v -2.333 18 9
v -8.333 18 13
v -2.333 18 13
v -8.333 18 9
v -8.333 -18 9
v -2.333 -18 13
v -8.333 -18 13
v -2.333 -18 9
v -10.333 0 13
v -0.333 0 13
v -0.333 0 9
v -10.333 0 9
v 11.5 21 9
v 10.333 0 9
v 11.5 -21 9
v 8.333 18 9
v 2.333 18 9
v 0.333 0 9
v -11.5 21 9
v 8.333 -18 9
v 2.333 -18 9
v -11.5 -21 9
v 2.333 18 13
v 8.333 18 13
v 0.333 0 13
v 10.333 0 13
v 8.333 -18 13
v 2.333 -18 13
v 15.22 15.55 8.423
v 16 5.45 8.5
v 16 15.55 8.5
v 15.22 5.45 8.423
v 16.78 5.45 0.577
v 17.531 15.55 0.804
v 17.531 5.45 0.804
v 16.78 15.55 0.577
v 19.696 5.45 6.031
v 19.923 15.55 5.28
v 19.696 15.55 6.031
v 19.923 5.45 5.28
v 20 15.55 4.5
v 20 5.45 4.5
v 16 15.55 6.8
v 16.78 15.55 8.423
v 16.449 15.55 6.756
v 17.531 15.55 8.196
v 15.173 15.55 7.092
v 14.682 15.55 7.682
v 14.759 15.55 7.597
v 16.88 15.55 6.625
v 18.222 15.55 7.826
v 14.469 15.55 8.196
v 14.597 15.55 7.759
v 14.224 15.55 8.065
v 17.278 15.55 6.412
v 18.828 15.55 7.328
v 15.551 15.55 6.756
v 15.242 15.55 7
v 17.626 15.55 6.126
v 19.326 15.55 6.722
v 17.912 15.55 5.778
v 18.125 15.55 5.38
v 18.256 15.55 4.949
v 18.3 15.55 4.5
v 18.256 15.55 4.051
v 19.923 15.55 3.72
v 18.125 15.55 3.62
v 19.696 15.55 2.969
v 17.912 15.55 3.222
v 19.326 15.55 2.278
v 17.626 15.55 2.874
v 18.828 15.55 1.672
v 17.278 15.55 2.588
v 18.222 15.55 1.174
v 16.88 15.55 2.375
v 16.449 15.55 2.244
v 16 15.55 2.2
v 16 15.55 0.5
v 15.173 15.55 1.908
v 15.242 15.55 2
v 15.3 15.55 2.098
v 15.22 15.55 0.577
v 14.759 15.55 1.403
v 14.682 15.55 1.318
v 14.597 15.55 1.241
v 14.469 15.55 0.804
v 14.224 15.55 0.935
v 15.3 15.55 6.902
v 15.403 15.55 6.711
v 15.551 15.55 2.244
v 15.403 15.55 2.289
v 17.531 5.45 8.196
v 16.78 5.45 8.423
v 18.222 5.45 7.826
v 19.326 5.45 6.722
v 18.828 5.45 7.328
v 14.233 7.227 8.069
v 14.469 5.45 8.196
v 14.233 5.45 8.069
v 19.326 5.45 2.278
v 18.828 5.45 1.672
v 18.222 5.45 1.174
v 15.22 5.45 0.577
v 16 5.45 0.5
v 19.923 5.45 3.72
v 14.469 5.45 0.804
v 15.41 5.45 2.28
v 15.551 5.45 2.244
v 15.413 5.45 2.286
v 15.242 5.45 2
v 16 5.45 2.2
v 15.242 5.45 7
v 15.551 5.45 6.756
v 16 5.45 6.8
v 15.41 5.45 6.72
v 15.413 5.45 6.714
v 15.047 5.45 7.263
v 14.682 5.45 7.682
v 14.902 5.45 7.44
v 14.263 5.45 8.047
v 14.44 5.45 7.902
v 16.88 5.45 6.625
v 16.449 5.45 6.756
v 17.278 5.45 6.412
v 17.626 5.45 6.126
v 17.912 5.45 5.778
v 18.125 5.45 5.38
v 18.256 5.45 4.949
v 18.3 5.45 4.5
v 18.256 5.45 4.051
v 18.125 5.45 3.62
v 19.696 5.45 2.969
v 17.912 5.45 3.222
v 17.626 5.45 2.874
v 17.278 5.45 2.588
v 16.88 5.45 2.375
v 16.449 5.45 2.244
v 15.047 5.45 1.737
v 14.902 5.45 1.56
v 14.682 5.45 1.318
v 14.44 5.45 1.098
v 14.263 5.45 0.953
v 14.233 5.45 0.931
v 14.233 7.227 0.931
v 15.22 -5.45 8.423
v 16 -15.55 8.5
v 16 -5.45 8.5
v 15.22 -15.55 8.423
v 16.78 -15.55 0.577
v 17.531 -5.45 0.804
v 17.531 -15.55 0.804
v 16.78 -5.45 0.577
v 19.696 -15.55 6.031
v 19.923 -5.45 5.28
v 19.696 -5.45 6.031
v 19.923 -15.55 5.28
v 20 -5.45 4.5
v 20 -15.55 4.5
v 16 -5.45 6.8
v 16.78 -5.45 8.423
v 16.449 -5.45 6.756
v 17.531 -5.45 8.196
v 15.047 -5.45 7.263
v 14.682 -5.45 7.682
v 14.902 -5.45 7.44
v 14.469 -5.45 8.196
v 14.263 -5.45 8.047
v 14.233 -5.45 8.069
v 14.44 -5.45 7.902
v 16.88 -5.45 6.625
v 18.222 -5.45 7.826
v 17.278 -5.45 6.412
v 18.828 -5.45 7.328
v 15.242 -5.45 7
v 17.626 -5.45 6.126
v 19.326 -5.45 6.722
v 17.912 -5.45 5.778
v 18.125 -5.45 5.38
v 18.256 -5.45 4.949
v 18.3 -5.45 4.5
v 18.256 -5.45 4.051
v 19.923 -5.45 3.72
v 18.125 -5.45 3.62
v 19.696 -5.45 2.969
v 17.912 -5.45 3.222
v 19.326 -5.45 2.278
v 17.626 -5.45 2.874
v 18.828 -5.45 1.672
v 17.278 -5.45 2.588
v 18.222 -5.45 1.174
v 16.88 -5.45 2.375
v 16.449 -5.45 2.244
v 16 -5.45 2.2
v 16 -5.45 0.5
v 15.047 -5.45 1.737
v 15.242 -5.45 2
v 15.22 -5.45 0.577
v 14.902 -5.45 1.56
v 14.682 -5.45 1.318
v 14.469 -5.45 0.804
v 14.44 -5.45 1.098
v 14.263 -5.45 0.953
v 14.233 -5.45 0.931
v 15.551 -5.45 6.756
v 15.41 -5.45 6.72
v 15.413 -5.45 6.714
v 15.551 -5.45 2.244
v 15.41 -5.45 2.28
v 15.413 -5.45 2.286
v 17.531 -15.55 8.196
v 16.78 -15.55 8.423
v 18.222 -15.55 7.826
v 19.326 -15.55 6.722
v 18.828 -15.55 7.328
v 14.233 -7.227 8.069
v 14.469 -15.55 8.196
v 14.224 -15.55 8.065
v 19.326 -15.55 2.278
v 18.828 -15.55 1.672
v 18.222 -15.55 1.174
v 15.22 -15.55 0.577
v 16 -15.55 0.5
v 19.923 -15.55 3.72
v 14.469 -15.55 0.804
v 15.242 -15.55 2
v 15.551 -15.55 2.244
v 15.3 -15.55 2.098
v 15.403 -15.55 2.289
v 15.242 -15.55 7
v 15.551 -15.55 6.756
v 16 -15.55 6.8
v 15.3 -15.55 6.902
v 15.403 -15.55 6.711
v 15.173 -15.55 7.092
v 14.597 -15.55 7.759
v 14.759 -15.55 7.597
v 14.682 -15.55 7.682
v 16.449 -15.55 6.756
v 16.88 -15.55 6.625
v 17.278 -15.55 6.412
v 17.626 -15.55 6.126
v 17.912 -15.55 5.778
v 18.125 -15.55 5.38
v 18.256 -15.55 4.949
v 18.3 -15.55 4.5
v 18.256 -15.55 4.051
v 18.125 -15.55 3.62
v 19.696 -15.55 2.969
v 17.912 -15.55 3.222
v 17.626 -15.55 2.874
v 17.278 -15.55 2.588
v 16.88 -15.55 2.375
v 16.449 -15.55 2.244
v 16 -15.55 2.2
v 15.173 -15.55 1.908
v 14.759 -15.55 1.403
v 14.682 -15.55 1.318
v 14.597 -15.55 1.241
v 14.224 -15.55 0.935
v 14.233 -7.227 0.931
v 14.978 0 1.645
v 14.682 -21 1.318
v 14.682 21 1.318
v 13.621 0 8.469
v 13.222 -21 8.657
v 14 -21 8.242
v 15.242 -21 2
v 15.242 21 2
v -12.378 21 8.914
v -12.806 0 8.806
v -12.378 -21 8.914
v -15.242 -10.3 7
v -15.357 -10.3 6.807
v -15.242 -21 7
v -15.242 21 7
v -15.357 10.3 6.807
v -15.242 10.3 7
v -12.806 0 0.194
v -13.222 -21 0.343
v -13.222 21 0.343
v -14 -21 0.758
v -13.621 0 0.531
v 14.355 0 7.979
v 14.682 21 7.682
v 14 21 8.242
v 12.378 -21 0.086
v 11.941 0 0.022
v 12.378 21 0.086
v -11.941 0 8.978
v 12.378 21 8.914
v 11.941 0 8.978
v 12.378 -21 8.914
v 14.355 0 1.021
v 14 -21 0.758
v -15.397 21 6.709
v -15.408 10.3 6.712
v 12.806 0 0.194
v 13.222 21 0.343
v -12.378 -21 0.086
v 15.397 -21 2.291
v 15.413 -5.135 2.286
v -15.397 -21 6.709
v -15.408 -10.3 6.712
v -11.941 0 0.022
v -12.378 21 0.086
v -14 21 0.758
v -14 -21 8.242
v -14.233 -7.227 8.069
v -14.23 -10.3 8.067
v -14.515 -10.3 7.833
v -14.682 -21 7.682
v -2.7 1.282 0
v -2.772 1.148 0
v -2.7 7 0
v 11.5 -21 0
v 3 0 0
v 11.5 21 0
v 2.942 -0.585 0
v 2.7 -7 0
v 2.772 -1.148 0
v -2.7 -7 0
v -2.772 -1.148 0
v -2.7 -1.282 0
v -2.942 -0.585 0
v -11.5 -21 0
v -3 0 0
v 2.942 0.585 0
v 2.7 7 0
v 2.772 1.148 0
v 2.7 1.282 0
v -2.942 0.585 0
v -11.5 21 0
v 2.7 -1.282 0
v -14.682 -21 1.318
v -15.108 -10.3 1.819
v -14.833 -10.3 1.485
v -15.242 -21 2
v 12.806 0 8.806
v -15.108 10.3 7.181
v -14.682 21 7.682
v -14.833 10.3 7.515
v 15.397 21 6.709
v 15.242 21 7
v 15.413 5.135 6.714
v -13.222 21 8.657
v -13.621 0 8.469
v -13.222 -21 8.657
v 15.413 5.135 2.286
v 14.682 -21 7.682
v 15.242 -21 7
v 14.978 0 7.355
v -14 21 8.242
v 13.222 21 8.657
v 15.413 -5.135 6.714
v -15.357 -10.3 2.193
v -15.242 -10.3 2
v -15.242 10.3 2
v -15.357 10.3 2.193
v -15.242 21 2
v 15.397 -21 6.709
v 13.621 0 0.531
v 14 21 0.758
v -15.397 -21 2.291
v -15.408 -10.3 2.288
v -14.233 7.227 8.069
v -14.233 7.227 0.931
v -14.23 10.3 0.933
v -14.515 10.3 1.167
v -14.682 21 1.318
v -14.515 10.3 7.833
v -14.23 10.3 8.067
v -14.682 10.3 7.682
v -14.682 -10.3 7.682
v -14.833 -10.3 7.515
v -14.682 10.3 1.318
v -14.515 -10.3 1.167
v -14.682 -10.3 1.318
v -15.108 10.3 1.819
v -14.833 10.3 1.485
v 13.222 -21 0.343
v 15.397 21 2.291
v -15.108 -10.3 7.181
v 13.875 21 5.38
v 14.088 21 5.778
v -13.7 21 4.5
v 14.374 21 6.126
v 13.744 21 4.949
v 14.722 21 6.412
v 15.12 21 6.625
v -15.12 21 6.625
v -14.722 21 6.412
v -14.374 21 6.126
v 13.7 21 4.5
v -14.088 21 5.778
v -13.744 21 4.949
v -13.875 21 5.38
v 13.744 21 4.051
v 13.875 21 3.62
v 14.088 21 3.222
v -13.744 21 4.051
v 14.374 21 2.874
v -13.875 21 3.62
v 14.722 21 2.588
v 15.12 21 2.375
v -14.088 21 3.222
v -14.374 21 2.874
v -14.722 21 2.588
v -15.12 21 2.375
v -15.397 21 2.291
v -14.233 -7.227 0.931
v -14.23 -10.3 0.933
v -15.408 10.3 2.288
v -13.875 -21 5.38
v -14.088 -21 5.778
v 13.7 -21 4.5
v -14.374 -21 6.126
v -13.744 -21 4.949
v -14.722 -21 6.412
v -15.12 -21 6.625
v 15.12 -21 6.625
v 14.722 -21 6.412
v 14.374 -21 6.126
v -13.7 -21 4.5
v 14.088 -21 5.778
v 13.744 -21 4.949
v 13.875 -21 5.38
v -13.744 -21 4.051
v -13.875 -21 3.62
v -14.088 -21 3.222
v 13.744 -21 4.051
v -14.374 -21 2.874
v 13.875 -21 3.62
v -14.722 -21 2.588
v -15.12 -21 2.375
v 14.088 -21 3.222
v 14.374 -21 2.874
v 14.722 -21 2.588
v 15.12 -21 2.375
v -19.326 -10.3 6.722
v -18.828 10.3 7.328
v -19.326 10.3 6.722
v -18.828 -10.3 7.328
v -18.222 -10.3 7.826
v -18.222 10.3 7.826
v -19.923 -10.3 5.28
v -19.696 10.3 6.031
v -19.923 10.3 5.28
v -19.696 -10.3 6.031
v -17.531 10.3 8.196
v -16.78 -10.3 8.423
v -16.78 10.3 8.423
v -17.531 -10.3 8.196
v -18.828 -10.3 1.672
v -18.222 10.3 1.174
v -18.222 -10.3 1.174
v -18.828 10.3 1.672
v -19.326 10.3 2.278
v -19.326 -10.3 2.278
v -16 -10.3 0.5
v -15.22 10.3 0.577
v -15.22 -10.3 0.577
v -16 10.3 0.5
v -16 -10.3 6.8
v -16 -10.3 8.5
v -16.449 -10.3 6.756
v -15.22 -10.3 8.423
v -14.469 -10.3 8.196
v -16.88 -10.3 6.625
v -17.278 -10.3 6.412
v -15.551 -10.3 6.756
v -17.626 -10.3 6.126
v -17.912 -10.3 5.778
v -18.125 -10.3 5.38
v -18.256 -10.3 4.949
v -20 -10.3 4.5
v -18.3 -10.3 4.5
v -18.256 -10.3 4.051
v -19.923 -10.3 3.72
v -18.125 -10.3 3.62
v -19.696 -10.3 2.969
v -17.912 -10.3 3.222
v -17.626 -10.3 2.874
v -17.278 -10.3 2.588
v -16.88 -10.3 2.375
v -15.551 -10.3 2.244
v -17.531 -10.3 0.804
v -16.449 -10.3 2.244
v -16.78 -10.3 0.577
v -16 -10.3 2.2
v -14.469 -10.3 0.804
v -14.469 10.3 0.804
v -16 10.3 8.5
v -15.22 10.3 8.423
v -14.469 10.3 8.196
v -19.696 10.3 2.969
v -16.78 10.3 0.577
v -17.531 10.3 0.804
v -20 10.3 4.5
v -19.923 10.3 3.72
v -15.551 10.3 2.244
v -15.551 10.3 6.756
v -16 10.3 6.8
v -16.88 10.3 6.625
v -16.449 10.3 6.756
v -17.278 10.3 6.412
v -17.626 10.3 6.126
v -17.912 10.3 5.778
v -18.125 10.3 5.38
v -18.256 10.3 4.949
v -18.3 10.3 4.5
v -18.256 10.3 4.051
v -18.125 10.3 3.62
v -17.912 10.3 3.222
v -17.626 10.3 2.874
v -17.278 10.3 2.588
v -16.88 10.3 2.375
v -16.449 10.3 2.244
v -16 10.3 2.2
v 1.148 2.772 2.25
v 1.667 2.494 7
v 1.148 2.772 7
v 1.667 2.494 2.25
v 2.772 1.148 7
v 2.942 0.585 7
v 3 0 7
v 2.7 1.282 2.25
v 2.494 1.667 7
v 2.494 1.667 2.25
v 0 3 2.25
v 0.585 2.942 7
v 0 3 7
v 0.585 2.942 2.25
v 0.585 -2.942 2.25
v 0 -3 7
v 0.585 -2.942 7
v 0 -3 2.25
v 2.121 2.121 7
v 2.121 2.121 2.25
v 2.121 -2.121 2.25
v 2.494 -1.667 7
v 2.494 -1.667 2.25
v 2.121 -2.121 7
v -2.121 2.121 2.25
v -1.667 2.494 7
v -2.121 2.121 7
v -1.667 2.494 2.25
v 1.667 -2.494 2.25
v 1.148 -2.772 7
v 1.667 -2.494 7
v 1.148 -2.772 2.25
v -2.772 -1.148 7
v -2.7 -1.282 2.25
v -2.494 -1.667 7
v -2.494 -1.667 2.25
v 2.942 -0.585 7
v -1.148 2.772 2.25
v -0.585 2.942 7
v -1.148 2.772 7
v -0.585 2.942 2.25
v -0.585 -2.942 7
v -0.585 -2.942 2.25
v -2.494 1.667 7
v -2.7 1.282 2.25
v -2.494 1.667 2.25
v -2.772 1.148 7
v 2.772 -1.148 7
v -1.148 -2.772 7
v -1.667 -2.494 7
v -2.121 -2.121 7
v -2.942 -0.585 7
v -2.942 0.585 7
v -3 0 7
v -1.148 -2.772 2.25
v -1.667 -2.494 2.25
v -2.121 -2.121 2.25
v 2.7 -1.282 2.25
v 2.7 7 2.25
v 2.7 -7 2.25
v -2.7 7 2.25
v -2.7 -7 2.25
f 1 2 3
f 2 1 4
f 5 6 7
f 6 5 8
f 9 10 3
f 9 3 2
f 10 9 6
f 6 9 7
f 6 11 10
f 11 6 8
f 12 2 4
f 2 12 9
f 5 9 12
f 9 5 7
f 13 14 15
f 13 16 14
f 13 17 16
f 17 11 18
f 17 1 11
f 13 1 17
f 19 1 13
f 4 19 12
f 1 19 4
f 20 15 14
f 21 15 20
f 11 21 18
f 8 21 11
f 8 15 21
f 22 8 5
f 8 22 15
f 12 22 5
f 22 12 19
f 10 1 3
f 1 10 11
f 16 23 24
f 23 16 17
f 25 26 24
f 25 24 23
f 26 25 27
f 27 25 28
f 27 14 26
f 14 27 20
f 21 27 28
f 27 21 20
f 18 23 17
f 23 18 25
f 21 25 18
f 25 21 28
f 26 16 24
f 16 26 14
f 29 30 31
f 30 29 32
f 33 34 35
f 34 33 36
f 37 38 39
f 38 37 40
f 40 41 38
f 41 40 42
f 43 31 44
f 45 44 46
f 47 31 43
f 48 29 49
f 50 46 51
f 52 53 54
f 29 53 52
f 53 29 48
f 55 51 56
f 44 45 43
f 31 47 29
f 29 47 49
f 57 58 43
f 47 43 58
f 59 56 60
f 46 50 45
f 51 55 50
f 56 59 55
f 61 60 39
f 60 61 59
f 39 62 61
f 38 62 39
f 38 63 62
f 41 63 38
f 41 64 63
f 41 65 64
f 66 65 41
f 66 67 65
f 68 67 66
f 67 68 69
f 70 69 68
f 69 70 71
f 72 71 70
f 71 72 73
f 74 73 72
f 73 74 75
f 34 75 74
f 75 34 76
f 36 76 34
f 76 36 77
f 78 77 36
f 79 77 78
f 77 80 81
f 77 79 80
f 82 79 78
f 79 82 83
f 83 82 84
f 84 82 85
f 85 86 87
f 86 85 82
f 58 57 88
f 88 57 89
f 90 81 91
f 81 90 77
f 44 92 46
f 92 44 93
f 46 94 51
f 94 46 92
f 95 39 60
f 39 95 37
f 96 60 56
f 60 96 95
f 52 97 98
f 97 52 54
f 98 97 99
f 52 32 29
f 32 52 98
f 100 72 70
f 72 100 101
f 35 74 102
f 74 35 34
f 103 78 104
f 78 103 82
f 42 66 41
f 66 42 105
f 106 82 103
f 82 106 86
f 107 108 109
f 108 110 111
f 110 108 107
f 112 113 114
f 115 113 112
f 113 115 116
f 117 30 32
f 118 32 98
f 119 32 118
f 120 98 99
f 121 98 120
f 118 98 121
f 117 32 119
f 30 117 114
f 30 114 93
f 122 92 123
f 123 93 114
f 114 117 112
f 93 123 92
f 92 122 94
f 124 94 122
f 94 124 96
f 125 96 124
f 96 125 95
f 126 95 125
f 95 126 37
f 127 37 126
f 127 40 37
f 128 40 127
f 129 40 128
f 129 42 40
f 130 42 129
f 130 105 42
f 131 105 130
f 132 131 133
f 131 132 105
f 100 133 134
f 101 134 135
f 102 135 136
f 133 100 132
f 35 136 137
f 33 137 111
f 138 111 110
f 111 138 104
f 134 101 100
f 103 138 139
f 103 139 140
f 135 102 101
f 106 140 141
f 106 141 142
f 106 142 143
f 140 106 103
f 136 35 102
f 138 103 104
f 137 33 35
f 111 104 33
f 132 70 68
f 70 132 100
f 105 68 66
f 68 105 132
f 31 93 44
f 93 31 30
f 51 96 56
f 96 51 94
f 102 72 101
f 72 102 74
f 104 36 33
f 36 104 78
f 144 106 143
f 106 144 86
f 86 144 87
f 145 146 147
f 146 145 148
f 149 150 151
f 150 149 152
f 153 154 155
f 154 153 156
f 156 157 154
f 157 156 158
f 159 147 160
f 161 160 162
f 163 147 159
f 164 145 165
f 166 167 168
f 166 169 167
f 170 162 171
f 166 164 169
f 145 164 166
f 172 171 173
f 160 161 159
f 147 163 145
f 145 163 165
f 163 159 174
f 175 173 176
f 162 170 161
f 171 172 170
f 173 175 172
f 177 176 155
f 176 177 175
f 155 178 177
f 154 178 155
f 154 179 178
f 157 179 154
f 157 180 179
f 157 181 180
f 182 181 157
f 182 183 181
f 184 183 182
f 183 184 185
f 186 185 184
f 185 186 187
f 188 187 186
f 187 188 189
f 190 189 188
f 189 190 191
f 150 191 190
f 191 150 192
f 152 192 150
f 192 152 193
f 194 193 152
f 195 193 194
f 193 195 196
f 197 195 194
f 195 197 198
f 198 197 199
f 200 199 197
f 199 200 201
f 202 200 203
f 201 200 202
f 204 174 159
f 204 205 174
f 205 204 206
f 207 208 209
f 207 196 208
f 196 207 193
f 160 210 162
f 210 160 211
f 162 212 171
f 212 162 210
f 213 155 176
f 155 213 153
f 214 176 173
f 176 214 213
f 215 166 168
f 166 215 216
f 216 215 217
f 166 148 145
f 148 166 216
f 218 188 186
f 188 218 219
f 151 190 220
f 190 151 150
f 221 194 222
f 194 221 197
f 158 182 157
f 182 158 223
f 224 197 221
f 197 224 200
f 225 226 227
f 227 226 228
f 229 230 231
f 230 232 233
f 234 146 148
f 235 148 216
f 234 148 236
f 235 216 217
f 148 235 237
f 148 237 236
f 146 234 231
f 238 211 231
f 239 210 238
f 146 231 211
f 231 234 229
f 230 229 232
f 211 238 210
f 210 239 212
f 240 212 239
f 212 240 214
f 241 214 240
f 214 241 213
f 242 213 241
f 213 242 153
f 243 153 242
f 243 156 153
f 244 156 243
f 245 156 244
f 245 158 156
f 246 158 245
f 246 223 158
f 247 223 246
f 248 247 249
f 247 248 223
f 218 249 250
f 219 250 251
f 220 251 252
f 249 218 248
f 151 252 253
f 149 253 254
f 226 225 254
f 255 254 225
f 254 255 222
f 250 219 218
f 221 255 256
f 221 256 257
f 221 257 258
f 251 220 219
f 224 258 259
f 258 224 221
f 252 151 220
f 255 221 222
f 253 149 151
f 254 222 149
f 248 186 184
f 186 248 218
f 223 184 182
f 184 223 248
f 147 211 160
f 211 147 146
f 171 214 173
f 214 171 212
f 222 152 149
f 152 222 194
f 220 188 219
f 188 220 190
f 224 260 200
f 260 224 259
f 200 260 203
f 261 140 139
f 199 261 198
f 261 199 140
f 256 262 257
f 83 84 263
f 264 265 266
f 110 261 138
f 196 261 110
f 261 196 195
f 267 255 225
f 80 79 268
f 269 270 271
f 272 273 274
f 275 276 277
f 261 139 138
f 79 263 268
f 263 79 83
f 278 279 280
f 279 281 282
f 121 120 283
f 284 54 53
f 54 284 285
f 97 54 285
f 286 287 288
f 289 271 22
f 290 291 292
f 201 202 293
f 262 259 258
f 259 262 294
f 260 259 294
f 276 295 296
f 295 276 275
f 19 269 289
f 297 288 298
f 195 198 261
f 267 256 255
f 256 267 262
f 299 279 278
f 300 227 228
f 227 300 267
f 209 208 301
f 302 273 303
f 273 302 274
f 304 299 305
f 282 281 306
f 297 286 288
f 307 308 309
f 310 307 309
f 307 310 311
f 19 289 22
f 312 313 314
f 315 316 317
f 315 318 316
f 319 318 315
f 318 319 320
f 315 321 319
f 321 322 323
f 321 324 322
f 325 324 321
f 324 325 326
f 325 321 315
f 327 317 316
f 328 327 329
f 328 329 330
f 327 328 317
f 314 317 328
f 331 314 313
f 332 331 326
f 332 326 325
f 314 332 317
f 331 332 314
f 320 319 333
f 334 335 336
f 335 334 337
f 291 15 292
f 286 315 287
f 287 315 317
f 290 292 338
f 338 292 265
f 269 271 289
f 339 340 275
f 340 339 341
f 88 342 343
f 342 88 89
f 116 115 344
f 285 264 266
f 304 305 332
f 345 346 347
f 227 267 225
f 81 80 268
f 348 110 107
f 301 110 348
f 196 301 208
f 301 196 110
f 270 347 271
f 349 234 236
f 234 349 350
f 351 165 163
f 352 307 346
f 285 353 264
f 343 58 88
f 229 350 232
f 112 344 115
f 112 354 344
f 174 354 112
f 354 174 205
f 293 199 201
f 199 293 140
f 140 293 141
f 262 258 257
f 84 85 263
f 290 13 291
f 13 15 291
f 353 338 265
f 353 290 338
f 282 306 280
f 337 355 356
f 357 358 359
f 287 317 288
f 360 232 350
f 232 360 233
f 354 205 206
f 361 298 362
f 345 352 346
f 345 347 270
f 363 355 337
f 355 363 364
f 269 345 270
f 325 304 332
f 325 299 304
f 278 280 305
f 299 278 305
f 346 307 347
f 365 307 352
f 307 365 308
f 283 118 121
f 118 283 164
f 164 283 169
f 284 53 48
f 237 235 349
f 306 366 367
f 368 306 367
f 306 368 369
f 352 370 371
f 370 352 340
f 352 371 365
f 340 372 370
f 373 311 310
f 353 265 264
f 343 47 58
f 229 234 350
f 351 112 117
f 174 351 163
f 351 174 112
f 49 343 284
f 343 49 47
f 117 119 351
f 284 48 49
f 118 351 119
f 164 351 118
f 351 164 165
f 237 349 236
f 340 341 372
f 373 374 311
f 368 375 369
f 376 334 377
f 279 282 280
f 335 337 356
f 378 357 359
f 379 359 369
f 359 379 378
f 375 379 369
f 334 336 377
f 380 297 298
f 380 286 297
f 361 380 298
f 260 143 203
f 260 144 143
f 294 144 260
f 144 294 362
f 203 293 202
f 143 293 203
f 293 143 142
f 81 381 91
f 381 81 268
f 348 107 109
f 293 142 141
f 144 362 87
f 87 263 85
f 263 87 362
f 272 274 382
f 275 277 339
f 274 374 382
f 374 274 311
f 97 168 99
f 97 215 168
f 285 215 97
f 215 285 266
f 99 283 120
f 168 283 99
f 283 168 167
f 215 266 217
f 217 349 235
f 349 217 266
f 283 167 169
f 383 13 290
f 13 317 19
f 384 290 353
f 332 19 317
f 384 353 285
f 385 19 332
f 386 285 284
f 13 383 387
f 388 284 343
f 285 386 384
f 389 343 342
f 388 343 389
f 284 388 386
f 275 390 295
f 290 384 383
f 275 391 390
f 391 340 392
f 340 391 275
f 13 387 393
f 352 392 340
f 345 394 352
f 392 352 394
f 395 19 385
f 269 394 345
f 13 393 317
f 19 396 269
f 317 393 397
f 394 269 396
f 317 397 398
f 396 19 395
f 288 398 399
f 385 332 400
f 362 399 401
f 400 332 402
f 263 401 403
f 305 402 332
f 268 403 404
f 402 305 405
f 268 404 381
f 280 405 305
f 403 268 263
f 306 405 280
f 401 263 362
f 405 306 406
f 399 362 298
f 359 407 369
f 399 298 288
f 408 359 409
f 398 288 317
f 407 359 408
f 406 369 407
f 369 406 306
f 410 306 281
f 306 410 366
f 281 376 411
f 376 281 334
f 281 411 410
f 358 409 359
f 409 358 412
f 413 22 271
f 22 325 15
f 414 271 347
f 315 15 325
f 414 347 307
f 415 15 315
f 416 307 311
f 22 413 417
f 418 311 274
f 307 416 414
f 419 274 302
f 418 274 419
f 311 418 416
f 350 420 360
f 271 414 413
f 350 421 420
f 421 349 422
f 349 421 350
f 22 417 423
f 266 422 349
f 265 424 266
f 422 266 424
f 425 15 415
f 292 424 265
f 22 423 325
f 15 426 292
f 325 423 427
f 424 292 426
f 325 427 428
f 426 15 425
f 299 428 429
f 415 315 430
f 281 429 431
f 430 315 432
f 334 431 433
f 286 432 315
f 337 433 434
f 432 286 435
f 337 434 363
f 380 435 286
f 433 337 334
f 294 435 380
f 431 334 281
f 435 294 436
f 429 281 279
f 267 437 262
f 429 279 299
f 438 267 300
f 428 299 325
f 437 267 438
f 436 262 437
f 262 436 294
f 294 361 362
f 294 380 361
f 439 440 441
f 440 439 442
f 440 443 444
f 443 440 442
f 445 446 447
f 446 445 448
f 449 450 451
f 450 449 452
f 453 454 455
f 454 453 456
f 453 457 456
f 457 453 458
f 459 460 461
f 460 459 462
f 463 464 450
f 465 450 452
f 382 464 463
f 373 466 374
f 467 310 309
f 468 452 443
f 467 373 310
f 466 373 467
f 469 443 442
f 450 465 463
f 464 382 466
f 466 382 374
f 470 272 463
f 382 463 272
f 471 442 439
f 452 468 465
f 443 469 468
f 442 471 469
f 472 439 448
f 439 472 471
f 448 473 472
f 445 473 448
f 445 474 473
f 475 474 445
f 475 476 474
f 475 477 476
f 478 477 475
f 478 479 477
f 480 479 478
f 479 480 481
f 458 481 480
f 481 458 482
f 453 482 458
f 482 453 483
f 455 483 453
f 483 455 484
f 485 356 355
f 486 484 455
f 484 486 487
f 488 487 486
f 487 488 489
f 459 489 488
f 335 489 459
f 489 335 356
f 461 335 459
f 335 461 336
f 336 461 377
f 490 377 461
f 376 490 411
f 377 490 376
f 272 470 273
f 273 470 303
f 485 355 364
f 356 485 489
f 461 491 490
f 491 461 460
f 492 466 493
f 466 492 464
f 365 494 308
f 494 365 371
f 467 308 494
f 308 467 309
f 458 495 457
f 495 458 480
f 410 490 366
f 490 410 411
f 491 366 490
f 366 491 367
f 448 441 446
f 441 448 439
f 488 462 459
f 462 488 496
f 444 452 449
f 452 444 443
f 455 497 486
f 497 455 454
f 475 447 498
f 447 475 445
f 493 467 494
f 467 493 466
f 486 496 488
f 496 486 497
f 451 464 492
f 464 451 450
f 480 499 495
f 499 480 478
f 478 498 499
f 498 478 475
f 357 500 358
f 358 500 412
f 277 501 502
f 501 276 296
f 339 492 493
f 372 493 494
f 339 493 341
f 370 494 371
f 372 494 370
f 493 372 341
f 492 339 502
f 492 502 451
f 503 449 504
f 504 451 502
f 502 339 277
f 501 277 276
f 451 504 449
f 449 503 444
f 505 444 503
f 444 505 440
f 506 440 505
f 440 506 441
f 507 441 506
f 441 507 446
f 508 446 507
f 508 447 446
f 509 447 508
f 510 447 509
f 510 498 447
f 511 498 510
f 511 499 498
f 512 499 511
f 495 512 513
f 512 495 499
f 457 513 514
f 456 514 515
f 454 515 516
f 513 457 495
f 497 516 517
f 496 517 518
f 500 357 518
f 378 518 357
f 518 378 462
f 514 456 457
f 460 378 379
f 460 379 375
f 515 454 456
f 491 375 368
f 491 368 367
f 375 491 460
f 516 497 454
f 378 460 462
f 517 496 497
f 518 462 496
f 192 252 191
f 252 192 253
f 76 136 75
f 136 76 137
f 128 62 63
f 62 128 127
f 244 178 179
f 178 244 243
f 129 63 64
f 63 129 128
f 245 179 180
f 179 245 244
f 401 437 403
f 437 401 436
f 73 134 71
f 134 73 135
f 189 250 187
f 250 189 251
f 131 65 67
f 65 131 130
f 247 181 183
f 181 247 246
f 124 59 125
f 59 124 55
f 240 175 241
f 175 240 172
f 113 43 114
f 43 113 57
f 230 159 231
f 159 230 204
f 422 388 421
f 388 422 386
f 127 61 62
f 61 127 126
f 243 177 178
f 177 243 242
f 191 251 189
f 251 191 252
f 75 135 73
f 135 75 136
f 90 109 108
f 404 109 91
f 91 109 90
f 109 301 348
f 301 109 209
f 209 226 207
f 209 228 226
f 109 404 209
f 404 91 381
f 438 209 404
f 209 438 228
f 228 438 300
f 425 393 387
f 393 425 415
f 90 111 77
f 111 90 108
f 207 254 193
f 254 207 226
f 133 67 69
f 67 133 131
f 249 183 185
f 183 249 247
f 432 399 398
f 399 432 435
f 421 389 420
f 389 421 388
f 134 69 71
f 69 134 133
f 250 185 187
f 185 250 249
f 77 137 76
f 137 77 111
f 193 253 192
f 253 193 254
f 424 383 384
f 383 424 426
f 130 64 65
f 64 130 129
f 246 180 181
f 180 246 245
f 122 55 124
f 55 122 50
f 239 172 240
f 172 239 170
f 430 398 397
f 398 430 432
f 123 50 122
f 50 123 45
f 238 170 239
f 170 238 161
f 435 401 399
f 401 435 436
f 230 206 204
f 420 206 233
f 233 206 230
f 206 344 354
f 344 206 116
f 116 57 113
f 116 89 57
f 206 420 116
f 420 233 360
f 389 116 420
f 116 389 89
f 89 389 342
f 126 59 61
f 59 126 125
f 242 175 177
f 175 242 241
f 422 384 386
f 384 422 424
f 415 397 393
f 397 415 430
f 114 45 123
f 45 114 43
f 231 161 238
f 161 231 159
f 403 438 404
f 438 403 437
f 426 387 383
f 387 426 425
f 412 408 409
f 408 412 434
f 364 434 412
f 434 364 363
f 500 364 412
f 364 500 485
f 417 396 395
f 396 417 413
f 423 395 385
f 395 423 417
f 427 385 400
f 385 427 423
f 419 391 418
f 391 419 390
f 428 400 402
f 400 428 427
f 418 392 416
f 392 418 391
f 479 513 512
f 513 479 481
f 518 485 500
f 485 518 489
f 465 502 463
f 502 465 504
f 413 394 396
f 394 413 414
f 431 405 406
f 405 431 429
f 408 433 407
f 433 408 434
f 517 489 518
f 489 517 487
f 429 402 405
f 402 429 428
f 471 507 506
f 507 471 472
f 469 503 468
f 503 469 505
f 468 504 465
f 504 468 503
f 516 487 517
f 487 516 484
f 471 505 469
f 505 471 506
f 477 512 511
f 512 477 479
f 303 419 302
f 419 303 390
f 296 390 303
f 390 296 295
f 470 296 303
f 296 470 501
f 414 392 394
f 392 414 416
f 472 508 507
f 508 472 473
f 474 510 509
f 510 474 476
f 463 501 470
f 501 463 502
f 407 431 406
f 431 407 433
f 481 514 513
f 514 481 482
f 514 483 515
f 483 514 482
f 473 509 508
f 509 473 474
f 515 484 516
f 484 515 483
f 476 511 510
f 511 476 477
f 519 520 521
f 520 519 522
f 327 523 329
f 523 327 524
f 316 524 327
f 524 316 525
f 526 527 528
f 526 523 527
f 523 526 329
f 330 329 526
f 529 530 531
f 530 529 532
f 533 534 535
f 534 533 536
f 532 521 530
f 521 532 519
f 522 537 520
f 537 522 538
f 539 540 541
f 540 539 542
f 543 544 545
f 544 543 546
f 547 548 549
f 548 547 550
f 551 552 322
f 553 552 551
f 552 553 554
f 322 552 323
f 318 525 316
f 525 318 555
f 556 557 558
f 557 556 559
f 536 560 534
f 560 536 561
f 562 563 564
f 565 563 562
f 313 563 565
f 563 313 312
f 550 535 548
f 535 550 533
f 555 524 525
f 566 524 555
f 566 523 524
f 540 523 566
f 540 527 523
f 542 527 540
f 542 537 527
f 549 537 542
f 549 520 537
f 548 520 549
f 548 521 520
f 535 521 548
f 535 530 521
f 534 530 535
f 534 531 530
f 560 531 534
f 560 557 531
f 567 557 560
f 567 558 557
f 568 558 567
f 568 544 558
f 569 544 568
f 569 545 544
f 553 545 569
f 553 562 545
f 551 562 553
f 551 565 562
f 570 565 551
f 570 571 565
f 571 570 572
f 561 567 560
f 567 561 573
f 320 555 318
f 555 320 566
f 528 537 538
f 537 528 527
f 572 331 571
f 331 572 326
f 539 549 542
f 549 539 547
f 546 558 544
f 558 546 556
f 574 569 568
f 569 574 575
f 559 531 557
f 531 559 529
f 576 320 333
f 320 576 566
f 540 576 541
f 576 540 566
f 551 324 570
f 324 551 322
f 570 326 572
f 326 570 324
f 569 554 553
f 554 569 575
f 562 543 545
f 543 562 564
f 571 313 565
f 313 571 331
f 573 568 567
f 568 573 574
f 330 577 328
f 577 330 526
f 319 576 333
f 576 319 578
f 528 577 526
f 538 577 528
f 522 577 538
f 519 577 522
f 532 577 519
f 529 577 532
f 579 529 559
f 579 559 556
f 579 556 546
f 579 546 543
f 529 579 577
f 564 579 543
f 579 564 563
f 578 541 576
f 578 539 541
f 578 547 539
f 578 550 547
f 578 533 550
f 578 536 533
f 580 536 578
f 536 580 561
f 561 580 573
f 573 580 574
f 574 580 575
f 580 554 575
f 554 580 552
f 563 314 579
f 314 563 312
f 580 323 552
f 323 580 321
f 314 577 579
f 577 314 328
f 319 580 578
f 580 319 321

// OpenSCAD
// file: params.scad
// ============================================================
//  PARAMÈTRES GLOBAUX - Johnny-Mow
//  Modifier ici pour adapter à votre robot
// ============================================================

// --- Châssis ---
chassis_L   = 350;   // longueur totale mm
chassis_W   = 300;   // largeur totale mm
chassis_H   = 8;     // épaisseur plaque de base mm
rail_W      = 52;    // largeur de chaque rail de chenille mm
rail_H      = 35;    // hauteur du rail latéral mm
rail_wall   = 4;     // épaisseur paroi rail mm
center_H    = 22;    // hauteur plancher central (dessus lame) mm

// --- Lame ---
blade_D     = 220;   // diamètre du disque lame mm
blade_clearance = 8; // jeu autour de la lame mm
blade_guard_H   = 25; // hauteur de la jupe de protection mm
blade_guard_t   = 3;  // épaisseur jupe mm

// --- Moteurs de roue ---
motor_D     = 37;    // diamètre corps moteur mm (DC gearmotor standard)
motor_shaft = 6;     // diamètre axe moteur mm
motor_L     = 68;    // longueur corps moteur mm

// --- Chenilles ---
link_L      = 32;    // longueur d'un maillon mm
link_W      = 42;    // largeur d'un maillon mm (= largeur piste)
link_H      = 9;     // hauteur d'un maillon mm
link_pin_D  = 4.2;   // diamètre des goupilles d'articulation mm
link_gap    = 0.4;   // jeu d'impression entre maillons mm

// --- Roues ---
wheel_D     = 64;    // diamètre roue / pignon mm
wheel_W     = 38;    // largeur roue mm
wheel_bore  = 6.2;   // alésage axe mm
teeth       = 14;    // nombre de dents du pignon
tooth_H     = 5;     // hauteur des dents mm
tooth_W     = 5;     // largeur de base des dents mm

// --- Roue folle ---
idler_D     = 54;    // diamètre roue folle mm
idler_W     = 38;    // largeur roue folle mm
idler_bore  = 8.2;   // alésage roulement mm (608 = 8mm)

// --- Impression ---
nozzle      = 0.4;   // diamètre buse mm
layer       = 0.2;   // hauteur de couche mm
tol         = 0.2;   // tolérance d'assemblage mm
// main file
// ============================================================
//  MAILLON DE CHENILLE - Johnny-Mow
//  Imprimer : 70-80 exemplaires - TPU 95A recommandé
//  (ou PETG rigide si TPU non disponible)
//  Remplissage : 80% - Périmètres : 4
//  PAS de support nécessaire (conçu pour impression à plat)
// ============================================================
include <params.scad>

$fn = 32;

pin_R = link_pin_D / 2;

module track_link() {
    difference() {
        union() {
            // --- Corps central du maillon ---
            hull() {
                translate([ link_L/2 - link_H/2, 0, link_H/2]) sphere(r=link_H/2);
                translate([-link_L/2 + link_H/2, 0, link_H/2]) sphere(r=link_H/2);
                translate([ link_L/2 - link_H/2, 0, link_H/2]) rotate([90,0,0]) cylinder(r=link_H/2, h=link_W, center=true);
                translate([-link_L/2 + link_H/2, 0, link_H/2]) rotate([90,0,0]) cylinder(r=link_H/2, h=link_W, center=true);
            }

            // --- Patins de traction (crampons) - face externe ---
            translate([0, 0, link_H])
                crampon();

            // --- Chapes d'articulation avant (mâle) ---
            // Deux oreilles extérieures côté +X
            for (y = [link_W/4, -link_W/4]) {
                translate([link_L/2, y, link_H/2])
                    rotate([90,0,0])
                        cylinder(r=link_H/2 - 0.5, h=link_W/4 - link_gap, center=true);
            }

            // --- Chapes d'articulation arrière (femelle élargie) ---
            // Une oreille centrale côté -X
            translate([-link_L/2, 0, link_H/2])
                rotate([90,0,0])
                    cylinder(r=link_H/2 - 0.5, h=link_W/2 - link_gap, center=true);
        }

        // --- Alésages de goupille avant (mâle) ---
        translate([link_L/2, 0, link_H/2])
            rotate([90,0,0])
                cylinder(r=pin_R + tol, h=link_W + 2, center=true);

        // --- Alésages de goupille arrière (femelle) ---
        translate([-link_L/2, 0, link_H/2])
            rotate([90,0,0])
                cylinder(r=pin_R + tol, h=link_W + 2, center=true);

        // --- Allégement central ---
        translate([0, 0, -1])
            cylinder(r=link_H/2 - 1.5, h=link_H - 1);

        // --- Encoche de dent de pignon (dessous) ---
        translate([0, 0, -1])
            cube([tooth_W + tol*2, link_W/3, link_H/2 + 2], center=true);
    }
}

module crampon() {
    // Crampon anti-glissement en chevron
    for (side = [-1, 1]) {
        translate([side * link_L/6, 0, 0])
        linear_extrude(height=4)
            polygon([
                [ 3*side,  link_W/2 - 3],
                [-3*side,  link_W/2 - 3],
                [-5*side,  0],
                [-3*side, -link_W/2 + 3],
                [ 3*side, -link_W/2 + 3],
                [ 5*side,  0],
            ]);
    }
}

// --- Goupille d'assemblage (à imprimer séparément, x2 par maillon) ---
module pin() {
    cylinder(r=pin_R - tol, h=link_W + 2, center=true);
    // Tête de goupille (empêche le glissement)
    translate([0, 0, link_W/2 + 2])
        cylinder(r=pin_R + 2, h=2);
    translate([0, 0, -link_W/2 - 4])
        cylinder(r=pin_R + 2, h=2);
}

// Décommenter pour afficher la goupille :
// translate([0, link_W + 5, 0]) rotate([90,0,0]) pin();

track_link();
